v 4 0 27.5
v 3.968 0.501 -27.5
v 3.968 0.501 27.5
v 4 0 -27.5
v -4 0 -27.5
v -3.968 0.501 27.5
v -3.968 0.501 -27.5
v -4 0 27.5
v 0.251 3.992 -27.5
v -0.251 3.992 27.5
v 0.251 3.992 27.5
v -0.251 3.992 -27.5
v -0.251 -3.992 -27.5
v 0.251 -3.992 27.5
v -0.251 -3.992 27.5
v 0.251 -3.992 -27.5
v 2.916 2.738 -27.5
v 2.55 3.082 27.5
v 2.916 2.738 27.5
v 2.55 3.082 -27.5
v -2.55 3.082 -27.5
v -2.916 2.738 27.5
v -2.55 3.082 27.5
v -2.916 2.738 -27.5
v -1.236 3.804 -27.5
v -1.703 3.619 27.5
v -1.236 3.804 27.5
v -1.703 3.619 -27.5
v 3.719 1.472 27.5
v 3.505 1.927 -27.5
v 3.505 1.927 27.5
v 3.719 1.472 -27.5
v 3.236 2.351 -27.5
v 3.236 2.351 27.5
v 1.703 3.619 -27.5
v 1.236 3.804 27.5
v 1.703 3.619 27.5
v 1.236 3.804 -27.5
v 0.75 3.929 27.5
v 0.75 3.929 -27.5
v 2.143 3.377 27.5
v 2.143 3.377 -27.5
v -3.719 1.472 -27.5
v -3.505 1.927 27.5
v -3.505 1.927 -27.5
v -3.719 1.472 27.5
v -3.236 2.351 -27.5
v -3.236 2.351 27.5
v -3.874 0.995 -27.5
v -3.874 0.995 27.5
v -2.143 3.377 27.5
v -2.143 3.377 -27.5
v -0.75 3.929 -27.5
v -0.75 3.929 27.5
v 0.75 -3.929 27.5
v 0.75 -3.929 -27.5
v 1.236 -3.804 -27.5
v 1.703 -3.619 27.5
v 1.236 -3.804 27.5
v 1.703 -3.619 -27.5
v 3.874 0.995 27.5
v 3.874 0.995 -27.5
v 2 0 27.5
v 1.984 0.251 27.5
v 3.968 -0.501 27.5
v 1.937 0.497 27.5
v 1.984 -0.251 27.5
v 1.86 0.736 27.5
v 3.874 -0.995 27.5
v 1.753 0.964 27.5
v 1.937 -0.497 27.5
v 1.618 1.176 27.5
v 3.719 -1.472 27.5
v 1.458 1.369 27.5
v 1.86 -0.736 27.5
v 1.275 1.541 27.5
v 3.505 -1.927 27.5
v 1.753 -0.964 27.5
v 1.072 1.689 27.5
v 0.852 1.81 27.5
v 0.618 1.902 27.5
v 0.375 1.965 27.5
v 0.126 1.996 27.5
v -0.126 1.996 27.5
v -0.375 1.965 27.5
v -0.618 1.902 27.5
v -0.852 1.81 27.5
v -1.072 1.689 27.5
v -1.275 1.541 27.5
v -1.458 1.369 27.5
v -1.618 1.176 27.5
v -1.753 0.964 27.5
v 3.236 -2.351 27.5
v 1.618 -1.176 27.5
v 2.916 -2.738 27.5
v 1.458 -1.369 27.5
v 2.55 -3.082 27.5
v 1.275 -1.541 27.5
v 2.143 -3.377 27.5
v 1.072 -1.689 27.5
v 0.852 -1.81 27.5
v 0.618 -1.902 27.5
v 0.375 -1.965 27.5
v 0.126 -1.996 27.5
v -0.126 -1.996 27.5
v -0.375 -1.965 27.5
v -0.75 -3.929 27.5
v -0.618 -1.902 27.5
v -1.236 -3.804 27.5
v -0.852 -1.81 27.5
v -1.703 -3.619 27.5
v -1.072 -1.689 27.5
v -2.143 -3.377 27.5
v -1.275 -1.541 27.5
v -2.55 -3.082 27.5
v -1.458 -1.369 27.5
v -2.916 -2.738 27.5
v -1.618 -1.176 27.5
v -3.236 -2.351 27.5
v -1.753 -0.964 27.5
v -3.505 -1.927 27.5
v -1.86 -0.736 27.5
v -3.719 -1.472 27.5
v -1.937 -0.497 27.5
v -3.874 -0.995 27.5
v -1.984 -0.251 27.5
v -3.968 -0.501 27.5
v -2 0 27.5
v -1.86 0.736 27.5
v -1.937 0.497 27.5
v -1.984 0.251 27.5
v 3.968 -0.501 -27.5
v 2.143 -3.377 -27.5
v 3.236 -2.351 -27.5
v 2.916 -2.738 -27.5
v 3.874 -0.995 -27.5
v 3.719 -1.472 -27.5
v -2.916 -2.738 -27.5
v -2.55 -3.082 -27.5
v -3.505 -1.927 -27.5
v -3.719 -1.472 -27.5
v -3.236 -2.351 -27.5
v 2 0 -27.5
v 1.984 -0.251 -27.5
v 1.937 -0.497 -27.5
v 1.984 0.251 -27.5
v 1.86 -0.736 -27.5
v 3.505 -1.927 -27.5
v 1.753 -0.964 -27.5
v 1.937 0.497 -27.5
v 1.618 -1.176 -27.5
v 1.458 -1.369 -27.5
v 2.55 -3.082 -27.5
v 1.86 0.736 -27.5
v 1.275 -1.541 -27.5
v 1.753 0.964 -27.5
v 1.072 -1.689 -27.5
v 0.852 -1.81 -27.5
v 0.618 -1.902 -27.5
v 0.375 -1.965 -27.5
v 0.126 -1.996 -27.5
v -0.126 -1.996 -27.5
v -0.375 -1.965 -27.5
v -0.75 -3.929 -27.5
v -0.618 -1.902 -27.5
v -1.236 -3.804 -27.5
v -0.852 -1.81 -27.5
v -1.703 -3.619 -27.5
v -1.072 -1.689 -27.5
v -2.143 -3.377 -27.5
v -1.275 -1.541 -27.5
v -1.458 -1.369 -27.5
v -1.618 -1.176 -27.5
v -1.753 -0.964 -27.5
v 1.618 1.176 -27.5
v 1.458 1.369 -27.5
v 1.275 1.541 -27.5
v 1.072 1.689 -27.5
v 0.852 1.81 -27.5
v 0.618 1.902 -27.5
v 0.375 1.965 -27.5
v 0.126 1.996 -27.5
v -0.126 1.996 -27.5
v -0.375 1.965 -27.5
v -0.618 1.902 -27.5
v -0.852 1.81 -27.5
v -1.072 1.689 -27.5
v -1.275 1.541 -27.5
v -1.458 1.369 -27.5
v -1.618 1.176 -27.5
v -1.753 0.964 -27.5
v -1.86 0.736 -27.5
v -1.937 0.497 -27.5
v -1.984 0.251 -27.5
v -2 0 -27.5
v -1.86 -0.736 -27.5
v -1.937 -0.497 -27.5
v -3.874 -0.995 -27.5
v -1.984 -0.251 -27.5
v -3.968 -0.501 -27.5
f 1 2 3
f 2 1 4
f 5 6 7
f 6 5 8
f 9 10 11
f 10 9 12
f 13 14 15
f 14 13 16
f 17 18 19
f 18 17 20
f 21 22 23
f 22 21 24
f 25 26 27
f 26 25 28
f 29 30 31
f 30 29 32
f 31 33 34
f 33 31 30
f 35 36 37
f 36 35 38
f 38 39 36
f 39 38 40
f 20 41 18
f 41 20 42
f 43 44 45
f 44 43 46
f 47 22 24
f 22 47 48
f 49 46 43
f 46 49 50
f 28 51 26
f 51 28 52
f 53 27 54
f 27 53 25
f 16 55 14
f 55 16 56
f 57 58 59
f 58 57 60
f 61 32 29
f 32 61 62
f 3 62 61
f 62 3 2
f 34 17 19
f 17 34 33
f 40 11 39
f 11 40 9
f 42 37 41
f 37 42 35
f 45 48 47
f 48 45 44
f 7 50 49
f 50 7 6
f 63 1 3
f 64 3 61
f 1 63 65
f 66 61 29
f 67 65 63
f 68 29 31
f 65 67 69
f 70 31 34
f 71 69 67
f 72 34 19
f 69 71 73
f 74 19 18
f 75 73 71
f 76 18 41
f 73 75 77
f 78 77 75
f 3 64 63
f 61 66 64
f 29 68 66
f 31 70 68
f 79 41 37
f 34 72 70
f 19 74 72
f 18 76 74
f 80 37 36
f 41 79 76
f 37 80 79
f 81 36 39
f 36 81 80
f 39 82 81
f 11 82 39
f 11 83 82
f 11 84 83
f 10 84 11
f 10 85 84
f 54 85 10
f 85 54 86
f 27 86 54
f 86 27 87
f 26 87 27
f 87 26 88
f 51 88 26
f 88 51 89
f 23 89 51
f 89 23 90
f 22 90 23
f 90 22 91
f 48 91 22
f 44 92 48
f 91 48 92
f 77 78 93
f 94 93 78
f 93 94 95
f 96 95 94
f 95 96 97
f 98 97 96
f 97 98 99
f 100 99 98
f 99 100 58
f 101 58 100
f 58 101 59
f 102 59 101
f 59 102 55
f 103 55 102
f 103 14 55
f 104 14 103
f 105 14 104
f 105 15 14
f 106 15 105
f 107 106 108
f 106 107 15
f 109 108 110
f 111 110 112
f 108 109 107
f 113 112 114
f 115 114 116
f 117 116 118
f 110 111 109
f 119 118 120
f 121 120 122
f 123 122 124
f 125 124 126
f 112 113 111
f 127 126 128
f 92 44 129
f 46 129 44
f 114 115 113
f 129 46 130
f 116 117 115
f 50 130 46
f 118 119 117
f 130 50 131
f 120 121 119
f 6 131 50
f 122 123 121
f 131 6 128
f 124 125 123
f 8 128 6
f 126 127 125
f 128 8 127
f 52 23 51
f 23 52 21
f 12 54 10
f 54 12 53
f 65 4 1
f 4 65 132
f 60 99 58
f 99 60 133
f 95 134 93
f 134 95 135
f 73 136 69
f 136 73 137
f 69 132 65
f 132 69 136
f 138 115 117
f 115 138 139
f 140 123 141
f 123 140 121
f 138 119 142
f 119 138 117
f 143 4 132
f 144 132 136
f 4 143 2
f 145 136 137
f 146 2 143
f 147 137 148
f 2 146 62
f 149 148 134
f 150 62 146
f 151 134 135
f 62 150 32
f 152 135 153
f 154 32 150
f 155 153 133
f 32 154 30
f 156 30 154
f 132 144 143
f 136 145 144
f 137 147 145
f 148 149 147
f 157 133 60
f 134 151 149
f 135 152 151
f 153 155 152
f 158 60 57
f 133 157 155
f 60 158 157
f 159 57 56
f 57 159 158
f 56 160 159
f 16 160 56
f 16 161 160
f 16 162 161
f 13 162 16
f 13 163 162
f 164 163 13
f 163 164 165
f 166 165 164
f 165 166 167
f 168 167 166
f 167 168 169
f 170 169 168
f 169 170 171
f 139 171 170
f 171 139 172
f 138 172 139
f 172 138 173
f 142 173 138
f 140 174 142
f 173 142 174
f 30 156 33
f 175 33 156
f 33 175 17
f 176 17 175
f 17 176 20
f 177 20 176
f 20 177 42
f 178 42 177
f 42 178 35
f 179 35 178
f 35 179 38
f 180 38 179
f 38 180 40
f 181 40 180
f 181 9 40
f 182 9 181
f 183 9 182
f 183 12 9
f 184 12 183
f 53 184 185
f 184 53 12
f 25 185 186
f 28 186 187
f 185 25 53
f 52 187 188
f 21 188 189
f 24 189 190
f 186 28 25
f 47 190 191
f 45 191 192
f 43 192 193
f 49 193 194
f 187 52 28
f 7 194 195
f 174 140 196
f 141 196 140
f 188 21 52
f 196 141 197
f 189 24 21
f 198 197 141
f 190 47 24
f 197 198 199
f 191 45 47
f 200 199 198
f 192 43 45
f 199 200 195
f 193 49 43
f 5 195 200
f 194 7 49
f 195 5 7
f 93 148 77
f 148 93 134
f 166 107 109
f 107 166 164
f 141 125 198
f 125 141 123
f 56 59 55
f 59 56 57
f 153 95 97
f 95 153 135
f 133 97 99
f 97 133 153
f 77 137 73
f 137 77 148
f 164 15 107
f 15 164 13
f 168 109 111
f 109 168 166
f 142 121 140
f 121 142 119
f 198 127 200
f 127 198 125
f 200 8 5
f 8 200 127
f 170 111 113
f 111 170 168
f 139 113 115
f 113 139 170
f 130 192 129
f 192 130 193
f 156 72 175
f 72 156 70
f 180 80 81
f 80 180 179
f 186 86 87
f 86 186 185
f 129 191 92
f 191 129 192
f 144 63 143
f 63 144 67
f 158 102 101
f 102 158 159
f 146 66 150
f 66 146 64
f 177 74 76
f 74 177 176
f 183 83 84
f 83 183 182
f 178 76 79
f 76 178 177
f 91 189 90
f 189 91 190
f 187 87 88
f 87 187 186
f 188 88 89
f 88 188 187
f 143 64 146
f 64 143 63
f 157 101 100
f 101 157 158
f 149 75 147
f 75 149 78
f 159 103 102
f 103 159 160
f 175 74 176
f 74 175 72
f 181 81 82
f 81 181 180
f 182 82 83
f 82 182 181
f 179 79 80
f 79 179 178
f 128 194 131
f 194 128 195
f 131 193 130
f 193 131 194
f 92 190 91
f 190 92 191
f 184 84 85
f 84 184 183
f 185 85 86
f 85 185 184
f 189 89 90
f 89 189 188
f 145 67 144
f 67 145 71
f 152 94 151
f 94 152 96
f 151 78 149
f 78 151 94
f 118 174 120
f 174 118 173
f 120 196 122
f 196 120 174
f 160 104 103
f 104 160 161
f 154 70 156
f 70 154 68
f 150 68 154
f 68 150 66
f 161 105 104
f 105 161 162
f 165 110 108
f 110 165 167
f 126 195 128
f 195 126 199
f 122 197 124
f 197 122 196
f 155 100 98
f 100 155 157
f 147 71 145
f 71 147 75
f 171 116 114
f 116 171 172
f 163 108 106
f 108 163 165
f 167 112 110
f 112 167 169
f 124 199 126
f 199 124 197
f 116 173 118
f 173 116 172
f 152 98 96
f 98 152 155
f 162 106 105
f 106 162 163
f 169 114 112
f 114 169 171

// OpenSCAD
$fn = 50;


difference() {
	union() {
		translate(v = [0, 0, -27.5000000000]) {
			cylinder(h = 55, r = 4.0000000000);
		}
	}
	union() {
		translate(v = [0, 0, -100.0000000000]) {
			cylinder(h = 200, r = 2);
		}
	}
}
